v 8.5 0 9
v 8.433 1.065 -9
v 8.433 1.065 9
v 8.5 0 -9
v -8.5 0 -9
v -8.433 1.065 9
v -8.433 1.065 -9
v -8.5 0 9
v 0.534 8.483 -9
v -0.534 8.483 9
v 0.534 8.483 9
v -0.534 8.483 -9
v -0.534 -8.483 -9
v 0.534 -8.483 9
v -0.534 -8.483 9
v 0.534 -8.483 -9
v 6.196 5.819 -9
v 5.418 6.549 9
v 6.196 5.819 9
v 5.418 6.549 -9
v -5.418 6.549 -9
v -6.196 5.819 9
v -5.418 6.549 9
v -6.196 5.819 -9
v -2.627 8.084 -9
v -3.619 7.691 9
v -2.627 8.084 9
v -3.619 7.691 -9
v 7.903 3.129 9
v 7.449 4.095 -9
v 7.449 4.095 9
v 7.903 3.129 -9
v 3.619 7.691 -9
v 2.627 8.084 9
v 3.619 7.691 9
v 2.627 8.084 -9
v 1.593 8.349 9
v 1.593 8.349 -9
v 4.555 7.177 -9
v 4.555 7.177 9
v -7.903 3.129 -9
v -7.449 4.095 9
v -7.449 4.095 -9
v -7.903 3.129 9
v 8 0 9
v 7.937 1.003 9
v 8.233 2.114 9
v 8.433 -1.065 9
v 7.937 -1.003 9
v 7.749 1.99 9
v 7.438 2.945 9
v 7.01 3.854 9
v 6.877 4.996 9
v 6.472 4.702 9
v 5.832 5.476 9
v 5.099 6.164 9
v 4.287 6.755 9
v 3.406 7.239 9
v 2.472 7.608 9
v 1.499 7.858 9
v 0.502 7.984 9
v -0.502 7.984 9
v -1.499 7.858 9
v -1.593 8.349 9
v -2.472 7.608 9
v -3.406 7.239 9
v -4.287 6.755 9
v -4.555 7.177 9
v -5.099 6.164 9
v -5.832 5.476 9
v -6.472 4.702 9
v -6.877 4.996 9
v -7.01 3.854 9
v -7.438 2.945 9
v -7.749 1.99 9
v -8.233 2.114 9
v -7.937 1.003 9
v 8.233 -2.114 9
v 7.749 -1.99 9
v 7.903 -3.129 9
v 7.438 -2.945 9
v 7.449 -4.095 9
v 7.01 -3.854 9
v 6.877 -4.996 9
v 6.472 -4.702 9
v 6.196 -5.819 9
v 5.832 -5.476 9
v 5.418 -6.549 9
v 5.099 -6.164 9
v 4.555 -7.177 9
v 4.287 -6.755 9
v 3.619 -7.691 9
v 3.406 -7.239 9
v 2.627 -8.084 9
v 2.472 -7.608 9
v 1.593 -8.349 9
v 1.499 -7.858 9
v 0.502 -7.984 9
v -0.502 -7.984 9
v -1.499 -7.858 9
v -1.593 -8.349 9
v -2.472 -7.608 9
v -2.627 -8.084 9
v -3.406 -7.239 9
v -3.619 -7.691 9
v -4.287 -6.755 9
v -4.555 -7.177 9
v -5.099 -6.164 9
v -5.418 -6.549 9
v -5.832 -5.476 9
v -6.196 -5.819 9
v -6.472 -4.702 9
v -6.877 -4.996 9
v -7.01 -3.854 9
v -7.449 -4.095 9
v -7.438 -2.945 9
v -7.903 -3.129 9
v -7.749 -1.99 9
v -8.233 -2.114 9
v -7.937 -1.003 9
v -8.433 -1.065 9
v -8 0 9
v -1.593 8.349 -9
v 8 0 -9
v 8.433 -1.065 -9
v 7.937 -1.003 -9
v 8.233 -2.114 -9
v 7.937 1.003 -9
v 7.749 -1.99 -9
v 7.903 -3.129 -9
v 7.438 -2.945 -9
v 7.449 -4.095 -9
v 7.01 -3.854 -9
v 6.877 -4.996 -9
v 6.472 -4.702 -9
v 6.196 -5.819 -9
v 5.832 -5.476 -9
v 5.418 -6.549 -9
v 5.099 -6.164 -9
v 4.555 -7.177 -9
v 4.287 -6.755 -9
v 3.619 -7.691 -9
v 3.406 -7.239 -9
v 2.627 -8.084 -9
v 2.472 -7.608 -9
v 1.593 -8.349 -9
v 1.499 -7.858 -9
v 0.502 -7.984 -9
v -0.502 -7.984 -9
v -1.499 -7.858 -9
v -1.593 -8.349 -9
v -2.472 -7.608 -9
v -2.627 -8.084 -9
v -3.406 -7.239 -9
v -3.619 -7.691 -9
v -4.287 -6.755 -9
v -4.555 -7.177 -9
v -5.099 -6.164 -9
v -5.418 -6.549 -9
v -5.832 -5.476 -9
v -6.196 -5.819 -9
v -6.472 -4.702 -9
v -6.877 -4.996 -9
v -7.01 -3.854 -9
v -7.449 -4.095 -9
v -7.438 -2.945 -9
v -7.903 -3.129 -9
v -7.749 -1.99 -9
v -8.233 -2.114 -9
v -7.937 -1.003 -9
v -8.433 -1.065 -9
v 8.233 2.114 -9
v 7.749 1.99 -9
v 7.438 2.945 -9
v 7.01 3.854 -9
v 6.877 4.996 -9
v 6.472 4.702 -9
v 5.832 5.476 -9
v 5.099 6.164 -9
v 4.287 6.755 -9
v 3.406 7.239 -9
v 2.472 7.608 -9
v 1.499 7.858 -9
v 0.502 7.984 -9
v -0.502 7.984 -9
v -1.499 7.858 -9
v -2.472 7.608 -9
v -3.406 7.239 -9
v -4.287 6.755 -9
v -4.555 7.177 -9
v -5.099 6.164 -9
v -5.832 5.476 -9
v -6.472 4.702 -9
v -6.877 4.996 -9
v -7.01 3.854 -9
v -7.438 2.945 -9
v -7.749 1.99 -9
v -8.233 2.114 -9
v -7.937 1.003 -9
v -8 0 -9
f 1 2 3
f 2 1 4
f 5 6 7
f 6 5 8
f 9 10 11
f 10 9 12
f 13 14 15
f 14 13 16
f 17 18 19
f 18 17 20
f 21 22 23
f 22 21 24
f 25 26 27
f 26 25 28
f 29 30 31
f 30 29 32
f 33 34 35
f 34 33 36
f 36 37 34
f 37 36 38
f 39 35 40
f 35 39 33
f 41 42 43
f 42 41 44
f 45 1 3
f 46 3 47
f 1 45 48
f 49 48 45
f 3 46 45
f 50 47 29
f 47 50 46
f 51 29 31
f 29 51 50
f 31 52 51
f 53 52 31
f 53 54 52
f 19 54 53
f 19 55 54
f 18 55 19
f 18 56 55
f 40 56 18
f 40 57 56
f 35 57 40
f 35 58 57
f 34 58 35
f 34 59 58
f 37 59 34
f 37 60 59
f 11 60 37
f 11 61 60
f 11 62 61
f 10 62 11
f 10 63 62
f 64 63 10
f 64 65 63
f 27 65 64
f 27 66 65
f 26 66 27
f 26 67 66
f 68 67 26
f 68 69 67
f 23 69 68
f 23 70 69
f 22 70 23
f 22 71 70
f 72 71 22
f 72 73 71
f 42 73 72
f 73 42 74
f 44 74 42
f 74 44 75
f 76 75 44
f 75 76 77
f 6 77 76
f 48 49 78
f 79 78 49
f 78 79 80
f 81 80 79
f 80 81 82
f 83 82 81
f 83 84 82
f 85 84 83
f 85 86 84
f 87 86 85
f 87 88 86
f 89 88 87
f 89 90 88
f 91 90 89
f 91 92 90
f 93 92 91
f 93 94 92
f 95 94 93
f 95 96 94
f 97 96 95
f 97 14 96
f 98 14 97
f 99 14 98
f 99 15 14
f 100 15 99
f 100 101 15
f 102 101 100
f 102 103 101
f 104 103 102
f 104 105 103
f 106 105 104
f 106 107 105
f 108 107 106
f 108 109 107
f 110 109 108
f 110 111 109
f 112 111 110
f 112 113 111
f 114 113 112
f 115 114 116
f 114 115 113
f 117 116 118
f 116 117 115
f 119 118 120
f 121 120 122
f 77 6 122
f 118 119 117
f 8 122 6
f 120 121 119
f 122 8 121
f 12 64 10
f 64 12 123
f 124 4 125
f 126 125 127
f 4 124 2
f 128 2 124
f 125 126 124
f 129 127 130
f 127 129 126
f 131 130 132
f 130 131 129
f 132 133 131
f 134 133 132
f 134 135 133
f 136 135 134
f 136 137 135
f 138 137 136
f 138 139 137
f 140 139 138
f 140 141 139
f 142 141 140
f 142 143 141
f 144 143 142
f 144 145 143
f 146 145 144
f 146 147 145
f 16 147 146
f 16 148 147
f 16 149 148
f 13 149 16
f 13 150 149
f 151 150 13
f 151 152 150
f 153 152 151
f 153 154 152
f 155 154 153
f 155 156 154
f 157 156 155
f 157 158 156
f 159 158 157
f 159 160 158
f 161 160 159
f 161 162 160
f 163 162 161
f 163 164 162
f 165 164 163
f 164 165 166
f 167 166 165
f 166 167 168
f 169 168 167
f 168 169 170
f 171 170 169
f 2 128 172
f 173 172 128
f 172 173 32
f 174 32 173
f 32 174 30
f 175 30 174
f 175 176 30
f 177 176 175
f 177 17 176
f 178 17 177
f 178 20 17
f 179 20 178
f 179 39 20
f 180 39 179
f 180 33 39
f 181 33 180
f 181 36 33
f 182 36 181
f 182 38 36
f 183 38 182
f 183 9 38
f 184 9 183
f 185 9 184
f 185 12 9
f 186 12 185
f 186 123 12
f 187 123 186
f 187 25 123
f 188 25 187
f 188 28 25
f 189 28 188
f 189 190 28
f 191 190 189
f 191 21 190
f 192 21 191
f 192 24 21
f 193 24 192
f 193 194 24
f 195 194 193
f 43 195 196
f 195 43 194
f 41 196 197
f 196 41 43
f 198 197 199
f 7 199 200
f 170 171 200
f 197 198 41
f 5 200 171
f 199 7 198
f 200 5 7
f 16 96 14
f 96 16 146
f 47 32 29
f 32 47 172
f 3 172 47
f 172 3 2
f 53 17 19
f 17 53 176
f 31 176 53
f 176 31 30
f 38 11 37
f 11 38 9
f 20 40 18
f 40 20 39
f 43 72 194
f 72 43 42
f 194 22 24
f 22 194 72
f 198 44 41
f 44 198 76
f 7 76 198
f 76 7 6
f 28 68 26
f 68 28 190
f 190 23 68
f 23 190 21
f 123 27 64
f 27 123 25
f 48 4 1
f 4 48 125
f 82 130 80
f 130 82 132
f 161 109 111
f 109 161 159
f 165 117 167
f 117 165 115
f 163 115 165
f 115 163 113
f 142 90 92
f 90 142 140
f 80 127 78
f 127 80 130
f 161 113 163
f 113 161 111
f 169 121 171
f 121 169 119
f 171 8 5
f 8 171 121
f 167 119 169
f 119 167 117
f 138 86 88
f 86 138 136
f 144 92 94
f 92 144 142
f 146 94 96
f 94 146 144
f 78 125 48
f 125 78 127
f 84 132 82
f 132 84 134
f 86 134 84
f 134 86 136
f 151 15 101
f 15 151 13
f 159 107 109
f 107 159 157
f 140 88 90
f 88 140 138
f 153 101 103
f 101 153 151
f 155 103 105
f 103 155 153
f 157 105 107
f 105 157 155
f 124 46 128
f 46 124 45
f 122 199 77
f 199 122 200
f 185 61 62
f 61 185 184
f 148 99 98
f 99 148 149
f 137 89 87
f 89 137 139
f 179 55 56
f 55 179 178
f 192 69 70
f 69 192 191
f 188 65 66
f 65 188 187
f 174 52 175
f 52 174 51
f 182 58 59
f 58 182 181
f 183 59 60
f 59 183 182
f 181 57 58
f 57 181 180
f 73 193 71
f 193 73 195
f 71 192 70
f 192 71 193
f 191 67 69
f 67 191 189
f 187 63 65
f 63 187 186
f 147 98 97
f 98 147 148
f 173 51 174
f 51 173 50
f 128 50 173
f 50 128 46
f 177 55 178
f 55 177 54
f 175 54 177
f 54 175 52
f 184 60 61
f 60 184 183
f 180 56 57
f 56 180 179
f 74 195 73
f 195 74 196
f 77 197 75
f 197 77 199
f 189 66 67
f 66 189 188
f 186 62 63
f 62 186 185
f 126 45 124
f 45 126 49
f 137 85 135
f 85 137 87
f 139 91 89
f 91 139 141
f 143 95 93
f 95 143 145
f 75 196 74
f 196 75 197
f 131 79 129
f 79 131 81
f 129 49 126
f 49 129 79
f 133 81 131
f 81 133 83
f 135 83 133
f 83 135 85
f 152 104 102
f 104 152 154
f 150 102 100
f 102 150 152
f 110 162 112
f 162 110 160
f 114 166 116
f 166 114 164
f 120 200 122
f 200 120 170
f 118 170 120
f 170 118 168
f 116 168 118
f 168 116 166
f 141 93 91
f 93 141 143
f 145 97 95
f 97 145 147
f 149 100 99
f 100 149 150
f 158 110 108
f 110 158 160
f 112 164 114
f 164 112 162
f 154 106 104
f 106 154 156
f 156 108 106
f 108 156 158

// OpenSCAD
$fn = 50;


difference() {
	union() {
		translate(v = [0, 0, -9.0000000000]) {
			cylinder(h = 18, r = 8.5000000000);
		}
	}
	union() {
		translate(v = [0, 0, -100.0000000000]) {
			cylinder(h = 200, r = 8);
		}
	}
}
